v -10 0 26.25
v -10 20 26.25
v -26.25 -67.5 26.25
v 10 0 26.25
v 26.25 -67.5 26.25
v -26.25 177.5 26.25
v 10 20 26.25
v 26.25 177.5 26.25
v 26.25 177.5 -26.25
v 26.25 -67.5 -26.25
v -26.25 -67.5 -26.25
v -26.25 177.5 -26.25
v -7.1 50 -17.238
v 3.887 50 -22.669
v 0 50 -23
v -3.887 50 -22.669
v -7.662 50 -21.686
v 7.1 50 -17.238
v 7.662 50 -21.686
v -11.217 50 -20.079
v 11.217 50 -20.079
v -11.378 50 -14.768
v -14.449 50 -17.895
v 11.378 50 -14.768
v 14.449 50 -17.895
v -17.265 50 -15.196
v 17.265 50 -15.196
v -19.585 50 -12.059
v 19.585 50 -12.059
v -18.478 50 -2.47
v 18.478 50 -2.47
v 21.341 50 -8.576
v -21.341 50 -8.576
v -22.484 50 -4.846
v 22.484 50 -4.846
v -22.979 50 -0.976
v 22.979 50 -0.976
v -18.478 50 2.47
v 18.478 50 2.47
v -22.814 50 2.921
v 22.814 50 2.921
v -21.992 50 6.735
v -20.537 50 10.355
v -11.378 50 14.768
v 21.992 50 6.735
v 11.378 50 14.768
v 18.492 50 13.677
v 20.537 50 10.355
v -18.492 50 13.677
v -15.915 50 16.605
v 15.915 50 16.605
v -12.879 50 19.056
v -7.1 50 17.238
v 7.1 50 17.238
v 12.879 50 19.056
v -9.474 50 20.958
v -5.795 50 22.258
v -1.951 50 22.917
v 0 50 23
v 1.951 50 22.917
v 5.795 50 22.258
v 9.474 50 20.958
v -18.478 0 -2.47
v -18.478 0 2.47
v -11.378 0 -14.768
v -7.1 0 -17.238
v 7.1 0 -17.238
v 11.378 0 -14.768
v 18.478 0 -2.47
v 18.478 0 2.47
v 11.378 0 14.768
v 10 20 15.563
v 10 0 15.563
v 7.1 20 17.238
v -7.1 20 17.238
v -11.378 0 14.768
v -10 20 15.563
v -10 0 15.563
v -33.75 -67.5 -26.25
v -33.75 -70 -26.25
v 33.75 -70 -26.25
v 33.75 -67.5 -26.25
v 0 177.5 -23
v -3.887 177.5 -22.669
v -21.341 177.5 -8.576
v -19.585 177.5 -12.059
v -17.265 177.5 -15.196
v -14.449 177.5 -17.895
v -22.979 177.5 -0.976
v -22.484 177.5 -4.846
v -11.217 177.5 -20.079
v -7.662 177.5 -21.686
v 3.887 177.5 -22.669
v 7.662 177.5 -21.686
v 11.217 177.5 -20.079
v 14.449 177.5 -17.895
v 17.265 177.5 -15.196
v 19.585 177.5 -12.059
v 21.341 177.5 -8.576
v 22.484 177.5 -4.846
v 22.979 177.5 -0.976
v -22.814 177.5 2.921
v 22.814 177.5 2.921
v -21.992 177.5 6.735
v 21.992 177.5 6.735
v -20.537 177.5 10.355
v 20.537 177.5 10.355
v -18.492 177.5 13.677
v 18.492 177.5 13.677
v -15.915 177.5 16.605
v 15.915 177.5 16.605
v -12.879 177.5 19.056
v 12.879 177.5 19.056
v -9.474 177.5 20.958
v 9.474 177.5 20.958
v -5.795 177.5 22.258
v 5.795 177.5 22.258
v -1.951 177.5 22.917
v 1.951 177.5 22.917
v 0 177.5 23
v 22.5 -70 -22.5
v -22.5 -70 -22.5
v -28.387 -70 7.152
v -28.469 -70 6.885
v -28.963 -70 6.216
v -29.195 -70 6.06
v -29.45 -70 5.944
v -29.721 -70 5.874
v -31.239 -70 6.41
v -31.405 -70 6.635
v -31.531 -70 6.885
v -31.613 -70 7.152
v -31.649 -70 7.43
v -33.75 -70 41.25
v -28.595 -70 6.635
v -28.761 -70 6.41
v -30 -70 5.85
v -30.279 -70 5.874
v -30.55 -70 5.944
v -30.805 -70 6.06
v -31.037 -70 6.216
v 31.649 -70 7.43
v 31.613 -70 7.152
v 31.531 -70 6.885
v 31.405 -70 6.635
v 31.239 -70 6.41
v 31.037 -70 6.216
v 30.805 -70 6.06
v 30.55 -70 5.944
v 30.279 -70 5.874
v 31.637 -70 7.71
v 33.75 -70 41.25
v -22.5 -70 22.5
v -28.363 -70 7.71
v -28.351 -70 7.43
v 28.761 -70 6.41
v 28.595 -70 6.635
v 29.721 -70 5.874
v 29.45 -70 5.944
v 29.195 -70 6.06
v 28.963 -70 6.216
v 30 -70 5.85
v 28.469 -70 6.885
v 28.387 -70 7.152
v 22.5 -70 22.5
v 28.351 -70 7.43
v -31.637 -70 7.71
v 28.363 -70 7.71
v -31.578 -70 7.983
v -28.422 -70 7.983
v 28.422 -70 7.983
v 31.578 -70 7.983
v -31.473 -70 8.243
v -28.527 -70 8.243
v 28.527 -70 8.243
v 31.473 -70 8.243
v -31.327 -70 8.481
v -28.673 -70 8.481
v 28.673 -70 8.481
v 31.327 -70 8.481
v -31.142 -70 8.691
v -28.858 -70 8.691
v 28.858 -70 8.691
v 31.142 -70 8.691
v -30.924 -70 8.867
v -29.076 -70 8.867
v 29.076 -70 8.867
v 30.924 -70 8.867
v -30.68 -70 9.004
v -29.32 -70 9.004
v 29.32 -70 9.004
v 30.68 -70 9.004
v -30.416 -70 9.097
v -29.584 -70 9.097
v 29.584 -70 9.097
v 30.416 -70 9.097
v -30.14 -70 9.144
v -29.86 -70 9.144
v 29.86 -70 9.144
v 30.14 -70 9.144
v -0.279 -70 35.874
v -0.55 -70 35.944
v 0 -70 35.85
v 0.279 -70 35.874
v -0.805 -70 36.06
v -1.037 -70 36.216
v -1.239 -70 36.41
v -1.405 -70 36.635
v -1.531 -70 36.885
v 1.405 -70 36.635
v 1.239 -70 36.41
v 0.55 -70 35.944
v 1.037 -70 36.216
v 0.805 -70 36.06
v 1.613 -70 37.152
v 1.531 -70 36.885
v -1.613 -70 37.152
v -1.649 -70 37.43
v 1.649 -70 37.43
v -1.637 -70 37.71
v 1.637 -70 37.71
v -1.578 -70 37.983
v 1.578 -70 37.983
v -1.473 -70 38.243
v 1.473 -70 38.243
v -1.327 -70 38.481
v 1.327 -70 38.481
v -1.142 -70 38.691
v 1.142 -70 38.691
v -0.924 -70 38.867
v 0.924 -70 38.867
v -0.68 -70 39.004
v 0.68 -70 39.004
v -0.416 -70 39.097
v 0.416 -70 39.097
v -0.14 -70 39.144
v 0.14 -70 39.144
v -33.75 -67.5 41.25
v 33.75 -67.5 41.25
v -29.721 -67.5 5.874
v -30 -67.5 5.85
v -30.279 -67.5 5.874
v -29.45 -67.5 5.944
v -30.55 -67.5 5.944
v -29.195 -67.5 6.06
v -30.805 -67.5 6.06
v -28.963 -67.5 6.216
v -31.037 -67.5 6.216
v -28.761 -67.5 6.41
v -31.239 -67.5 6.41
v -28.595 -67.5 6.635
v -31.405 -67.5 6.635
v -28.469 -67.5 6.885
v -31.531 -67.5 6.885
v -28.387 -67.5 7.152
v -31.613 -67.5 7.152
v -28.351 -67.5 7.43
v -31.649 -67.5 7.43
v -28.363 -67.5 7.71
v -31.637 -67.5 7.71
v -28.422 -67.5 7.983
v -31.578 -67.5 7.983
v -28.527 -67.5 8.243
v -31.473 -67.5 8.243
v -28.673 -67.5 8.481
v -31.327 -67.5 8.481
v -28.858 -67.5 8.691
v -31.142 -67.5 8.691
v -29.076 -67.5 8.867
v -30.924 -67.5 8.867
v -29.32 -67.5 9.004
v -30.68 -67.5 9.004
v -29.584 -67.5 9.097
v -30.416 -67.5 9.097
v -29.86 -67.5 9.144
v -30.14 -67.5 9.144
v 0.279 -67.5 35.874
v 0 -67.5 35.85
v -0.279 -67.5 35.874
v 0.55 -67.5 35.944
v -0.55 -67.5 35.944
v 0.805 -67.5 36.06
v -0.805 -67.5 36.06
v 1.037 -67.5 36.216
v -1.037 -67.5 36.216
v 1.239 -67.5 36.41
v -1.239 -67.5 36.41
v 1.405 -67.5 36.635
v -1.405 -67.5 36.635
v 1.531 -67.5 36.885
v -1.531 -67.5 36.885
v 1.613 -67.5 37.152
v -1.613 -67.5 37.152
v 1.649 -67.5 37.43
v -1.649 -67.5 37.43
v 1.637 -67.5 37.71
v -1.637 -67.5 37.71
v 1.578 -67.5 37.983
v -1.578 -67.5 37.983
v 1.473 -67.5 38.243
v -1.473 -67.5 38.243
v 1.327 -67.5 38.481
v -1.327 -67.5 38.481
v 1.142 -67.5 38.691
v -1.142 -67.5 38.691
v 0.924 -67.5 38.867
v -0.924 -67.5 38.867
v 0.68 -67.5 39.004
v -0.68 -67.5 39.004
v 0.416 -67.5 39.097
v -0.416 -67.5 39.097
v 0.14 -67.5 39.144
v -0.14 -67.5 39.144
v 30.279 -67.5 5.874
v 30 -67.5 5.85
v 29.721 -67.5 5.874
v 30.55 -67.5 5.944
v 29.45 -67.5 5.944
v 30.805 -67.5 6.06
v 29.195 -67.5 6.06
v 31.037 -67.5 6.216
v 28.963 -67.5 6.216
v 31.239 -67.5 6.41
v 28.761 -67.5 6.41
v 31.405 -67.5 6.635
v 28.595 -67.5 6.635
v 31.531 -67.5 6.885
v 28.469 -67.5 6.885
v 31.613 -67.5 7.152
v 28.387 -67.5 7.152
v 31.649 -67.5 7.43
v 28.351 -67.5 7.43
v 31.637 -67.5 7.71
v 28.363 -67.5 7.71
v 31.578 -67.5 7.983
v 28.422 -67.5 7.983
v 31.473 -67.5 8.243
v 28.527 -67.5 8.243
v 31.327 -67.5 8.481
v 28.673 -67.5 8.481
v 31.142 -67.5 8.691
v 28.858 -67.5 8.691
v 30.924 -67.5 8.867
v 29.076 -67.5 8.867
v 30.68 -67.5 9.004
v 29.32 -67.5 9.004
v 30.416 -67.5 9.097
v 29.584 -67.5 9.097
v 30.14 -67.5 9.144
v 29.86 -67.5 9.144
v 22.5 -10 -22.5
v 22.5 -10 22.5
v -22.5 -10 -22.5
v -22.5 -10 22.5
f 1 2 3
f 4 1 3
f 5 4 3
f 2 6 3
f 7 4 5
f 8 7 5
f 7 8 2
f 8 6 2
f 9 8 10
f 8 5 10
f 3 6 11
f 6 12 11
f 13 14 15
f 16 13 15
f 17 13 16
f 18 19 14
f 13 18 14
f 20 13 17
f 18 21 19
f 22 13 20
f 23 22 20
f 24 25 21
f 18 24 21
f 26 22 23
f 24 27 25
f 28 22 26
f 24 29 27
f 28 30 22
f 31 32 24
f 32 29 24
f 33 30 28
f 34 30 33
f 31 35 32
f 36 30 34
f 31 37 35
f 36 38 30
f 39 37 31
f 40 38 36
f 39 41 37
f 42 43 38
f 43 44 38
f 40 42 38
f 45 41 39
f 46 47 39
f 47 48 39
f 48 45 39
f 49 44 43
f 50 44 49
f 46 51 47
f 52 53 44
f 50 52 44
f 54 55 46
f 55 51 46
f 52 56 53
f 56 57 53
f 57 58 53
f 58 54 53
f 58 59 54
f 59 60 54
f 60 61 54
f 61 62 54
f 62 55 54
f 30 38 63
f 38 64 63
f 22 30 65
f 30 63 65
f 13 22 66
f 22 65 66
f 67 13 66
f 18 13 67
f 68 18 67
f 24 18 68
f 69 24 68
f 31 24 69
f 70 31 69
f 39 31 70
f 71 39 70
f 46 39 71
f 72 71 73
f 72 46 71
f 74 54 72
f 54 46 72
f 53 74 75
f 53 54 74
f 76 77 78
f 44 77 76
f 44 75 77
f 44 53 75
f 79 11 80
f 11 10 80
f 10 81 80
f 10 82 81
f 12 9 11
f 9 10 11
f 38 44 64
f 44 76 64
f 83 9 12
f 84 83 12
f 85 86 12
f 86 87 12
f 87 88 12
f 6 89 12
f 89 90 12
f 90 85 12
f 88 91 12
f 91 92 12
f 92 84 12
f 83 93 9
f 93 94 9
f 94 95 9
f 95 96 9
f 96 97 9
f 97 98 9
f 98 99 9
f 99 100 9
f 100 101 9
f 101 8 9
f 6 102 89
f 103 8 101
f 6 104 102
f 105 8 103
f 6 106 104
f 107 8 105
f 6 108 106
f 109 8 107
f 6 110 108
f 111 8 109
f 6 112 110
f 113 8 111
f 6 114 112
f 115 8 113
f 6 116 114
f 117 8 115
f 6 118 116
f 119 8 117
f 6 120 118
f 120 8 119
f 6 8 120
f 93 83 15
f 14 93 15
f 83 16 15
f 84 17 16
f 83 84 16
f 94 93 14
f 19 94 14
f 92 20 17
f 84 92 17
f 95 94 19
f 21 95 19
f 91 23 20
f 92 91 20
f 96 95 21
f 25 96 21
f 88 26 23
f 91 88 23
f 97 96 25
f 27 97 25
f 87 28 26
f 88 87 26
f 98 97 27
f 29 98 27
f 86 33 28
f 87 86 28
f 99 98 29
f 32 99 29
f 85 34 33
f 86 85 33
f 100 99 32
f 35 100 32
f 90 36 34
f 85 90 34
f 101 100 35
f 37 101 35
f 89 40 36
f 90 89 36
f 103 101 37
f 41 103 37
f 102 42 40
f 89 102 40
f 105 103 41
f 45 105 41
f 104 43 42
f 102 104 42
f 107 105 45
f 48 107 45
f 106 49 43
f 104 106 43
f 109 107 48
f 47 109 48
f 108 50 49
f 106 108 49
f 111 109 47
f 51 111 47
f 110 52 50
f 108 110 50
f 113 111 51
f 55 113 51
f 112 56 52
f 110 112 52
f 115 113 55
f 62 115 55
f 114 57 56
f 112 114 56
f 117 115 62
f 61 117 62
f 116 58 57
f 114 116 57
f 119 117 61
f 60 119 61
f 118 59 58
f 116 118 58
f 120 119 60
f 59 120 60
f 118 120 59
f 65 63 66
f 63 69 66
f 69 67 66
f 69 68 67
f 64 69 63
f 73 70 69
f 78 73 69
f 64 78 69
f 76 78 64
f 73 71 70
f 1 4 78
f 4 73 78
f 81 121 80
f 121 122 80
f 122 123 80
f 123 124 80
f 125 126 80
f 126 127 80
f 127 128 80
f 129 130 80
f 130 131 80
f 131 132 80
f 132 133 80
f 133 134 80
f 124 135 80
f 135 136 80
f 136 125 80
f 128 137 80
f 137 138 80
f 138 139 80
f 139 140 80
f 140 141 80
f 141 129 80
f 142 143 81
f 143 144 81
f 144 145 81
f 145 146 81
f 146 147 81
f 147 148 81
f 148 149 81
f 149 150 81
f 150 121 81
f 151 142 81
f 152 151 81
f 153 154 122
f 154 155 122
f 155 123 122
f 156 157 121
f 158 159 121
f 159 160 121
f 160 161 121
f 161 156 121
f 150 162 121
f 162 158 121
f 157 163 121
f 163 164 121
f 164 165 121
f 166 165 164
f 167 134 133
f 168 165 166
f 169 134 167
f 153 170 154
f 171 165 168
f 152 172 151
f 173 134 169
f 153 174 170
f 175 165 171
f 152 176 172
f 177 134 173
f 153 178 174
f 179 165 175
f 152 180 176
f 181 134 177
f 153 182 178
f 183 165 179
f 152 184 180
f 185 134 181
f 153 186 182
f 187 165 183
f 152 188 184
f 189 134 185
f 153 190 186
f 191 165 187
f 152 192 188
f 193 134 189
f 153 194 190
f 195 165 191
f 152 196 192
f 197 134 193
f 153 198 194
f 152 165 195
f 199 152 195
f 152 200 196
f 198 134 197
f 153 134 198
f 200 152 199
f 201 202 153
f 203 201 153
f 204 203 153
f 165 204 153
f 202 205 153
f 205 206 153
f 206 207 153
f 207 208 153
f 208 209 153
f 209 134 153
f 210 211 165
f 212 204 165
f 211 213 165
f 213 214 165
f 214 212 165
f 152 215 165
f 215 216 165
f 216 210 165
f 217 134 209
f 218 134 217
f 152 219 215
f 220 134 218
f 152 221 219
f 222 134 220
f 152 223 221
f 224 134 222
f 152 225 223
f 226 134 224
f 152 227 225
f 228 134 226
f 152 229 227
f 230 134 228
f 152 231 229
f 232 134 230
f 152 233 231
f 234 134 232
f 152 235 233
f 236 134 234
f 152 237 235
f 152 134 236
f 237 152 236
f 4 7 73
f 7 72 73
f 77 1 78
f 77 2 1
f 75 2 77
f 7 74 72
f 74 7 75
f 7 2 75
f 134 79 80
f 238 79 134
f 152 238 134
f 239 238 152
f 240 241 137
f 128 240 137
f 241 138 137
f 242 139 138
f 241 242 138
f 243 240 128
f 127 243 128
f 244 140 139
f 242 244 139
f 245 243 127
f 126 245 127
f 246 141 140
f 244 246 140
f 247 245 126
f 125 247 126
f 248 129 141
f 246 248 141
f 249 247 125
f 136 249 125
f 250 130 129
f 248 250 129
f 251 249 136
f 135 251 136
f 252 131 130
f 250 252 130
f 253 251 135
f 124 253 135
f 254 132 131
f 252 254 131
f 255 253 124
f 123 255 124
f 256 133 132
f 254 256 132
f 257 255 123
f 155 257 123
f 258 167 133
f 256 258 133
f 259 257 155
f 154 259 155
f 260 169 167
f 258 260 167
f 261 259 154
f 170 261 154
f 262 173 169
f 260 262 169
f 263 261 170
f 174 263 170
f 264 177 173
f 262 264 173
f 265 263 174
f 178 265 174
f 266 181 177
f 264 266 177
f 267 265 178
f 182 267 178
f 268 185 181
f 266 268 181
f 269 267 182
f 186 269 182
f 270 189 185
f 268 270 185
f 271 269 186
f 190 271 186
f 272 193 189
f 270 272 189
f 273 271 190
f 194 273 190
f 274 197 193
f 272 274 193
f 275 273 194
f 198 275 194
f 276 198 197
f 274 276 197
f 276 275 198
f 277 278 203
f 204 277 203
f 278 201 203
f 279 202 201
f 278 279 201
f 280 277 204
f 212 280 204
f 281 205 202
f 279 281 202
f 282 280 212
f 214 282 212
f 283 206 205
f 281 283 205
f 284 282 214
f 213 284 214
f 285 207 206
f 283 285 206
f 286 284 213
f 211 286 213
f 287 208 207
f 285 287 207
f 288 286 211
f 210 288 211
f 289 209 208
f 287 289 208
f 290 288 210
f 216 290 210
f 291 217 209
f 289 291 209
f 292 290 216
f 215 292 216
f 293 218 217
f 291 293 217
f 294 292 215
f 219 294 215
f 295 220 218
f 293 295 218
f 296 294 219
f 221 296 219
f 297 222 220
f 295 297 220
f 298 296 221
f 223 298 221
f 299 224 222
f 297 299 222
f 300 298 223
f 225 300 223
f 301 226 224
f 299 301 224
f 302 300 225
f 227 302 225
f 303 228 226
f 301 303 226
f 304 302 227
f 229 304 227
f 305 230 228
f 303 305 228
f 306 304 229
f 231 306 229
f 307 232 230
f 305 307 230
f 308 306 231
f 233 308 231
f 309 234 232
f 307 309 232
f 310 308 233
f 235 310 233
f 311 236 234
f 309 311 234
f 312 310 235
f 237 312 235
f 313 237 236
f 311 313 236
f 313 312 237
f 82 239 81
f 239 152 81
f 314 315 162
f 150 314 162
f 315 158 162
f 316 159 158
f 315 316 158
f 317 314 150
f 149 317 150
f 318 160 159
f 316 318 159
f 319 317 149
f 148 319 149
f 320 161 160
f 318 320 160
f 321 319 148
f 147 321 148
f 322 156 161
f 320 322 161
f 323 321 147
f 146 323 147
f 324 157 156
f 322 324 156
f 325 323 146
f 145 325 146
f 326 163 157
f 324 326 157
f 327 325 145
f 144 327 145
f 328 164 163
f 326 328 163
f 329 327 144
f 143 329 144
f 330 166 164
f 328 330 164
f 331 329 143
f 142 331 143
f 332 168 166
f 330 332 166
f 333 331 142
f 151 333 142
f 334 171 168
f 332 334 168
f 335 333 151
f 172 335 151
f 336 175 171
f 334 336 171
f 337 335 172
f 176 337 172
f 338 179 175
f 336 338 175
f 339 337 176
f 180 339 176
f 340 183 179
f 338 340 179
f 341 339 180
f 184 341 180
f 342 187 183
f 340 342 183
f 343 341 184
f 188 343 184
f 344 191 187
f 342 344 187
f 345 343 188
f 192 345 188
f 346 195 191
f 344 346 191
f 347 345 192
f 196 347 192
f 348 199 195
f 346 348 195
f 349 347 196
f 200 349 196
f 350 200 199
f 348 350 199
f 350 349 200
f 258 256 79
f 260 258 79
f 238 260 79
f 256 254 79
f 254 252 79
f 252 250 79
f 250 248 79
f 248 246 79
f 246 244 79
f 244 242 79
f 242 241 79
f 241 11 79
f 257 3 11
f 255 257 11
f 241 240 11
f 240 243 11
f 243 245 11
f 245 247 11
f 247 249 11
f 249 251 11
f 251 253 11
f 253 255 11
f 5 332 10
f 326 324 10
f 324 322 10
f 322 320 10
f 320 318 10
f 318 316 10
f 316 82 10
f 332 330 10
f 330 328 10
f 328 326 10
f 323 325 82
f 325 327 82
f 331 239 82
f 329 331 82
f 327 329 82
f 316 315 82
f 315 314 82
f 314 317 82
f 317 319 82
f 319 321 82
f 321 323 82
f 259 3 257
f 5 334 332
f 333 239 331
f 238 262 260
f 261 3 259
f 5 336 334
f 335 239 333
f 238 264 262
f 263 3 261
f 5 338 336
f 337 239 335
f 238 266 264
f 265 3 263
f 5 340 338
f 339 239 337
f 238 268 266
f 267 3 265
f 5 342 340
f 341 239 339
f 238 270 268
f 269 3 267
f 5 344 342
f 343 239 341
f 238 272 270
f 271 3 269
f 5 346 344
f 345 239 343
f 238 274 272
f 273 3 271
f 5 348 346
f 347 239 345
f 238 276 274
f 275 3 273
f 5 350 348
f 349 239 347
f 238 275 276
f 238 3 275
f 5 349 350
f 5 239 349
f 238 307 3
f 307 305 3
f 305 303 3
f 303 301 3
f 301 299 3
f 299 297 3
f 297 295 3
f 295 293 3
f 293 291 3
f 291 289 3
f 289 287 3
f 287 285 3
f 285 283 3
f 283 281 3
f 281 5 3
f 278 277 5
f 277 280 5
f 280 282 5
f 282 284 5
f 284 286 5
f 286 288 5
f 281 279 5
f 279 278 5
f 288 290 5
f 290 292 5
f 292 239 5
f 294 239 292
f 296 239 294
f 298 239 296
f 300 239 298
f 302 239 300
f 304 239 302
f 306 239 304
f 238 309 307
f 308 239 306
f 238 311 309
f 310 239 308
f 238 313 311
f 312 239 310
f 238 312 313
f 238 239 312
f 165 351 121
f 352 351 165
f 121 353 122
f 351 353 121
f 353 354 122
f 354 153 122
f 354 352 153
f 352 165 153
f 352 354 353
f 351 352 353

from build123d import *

# Parameters (mm, degrees)
BOSS_EXTRUDE1_DEPTH = 50
BOSS_EXTRUDE2_START = 50
SKETCH2_3_R         = 23
BOSS_EXTRUDE2_DEPTH = 127.5
BOSS_EXTRUDE3_DEPTH = 177.5
SKETCH3_W           = 52.5
SKETCH3_H           = 52.5
BOSS_EXTRUDE4_DEPTH = 70
SKETCH6_W           = 20
SKETCH6_H           = 20
CUT_EXTRUDE7_DEPTH  = 30
SKETCH5_W           = 67.5
SKETCH5_H           = 67.5
SKETCH5_R           = 1.65
SKETCH5_W_2         = 47.5
SKETCH5_H_2         = 47.5
BOSS_EXTRUDE7_DEPTH = 2.5
SKETCH8_W           = 45
SKETCH8_H           = 45
CUT_EXTRUDE9_DEPTH  = 60


with BuildPart() as part:
    # Sketch2 → Boss-Extrude1 (new body)
    with BuildSketch(Plane(origin=(0, 0, 0), x_dir=(1, 0, 0), z_dir=(0, 1, 0))):
        with BuildLine():
            ThreePointArc((-26.25, -11.459990061), (-20.253319138, -20.253319138), (-11.459990061, -26.25))
            Line((-11.459990061, -26.25), (11.459990061, -26.25))
            ThreePointArc((11.459990061, -26.25), (20.253319138, -20.253319138), (26.25, -11.459990061))
            Line((26.25, -11.459990061), (26.25, 11.459990061))
            ThreePointArc((26.25, 11.459990061), (20.253319138, 20.253319138), (11.459990061, 26.25))
            Line((11.459990061, 26.25), (-11.459990061, 26.25))
            ThreePointArc((-11.459990061, 26.25), (-20.253319138, 20.253319138), (-26.25, 11.459990061))
            Line((-26.25, 11.459990061), (-26.25, -11.459990061))
        make_face()
        Polygon((-7.1, 17.237560734), (7.1, 17.237560734), (11.378165495, 14.767560734), (18.478165495, 2.47), (18.478165495, -2.47), (11.378165495, -14.767560734), (7.1, -17.237560734), (-7.1, -17.237560734), (-11.378165495, -14.767560734), (-18.478165495, -2.47), (-18.478165495, 2.47), (-11.378165495, 14.767560734), align=None, mode=Mode.SUBTRACT)
    extrude(amount=BOSS_EXTRUDE1_DEPTH)

    # Sketch2<3> → Boss-Extrude2 (add)
    with BuildSketch(Plane(origin=(0, 0, 0), x_dir=(1, 0, 0), z_dir=(0, 1, 0)).offset(BOSS_EXTRUDE2_START)):
        with BuildLine():
            ThreePointArc((-26.25, -11.459990061), (-20.253319138, -20.253319138), (-11.459990061, -26.25))
            Line((-11.459990061, -26.25), (11.459990061, -26.25))
            ThreePointArc((11.459990061, -26.25), (20.253319138, -20.253319138), (26.25, -11.459990061))
            Line((26.25, -11.459990061), (26.25, 11.459990061))
            ThreePointArc((26.25, 11.459990061), (20.253319138, 20.253319138), (11.459990061, 26.25))
            Line((11.459990061, 26.25), (-11.459990061, 26.25))
            ThreePointArc((-11.459990061, 26.25), (-20.253319138, 20.253319138), (-26.25, 11.459990061))
            Line((-26.25, 11.459990061), (-26.25, -11.459990061))
        make_face()
        with Locations(Location((0, 0, 0), (0, 0, 270))):
            Circle(SKETCH2_3_R, mode=Mode.SUBTRACT)
    extrude(amount=BOSS_EXTRUDE2_DEPTH)

    # Sketch2<4> → Boss-Extrude3 (add)
    with BuildSketch(Plane(origin=(0, 0, 0), x_dir=(1, 0, 0), z_dir=(0, 1, 0))):
        with BuildLine():
            Line((-26.25, 26.25), (-26.25, 11.459990061))
            ThreePointArc((-26.25, 11.459990061), (-20.253319138, 20.253319138), (-11.459990061, 26.25))
            Line((-11.459990061, 26.25), (-26.25, 26.25))
        make_face()
        with BuildLine():
            ThreePointArc((11.459990061, 26.25), (20.253319138, 20.253319138), (26.25, 11.459990061))
            Line((26.25, 11.459990061), (26.25, 26.25))
            Line((26.25, 26.25), (11.459990061, 26.25))
        make_face()
        with BuildLine():
            ThreePointArc((26.25, -11.459990061), (20.253319138, -20.253319138), (11.459990061, -26.25))
            Line((11.459990061, -26.25), (26.25, -26.25))
            Line((26.25, -26.25), (26.25, -11.459990061))
        make_face()
        with BuildLine():
            Line((-26.25, -11.459990061), (-26.25, -26.25))
            Line((-26.25, -26.25), (-11.459990061, -26.25))
            ThreePointArc((-11.459990061, -26.25), (-20.253319138, -20.253319138), (-26.25, -11.459990061))
        make_face()
    extrude(amount=BOSS_EXTRUDE3_DEPTH)

    # Sketch3 → Boss-Extrude4 (add)
    with BuildSketch(Plane.XZ):
        Rectangle(SKETCH3_W, SKETCH3_H)
    extrude(amount=BOSS_EXTRUDE4_DEPTH)

    # Sketch6 → Cut-Extrude7 (cut)
    with BuildSketch(Plane.XY.offset(26.25)):
        with Locations((0, 10)):
            Rectangle(SKETCH6_W, SKETCH6_H)
    extrude(amount=-CUT_EXTRUDE7_DEPTH, mode=Mode.SUBTRACT)

    # Sketch5 → Boss-Extrude7 (add)
    with BuildSketch(Plane.XZ.offset(70)):
        with Locations((0, 7.5)):
            Rectangle(SKETCH5_W, SKETCH5_H)
        with Locations(Location((0, 37.5, 0), (0, 0, 270))):
            Circle(SKETCH5_R, mode=Mode.SUBTRACT)
        with Locations(Location((-30, 7.5, 0), (0, 0, 270))):
            Circle(SKETCH5_R, mode=Mode.SUBTRACT)
        with Locations(Location((30, 7.5, 0), (0, 0, 270))):
            Circle(SKETCH5_R, mode=Mode.SUBTRACT)
        Rectangle(SKETCH5_W_2, SKETCH5_H_2, mode=Mode.SUBTRACT)
    extrude(amount=-BOSS_EXTRUDE7_DEPTH)

    # Sketch8 → Cut-Extrude9 (cut)
    with BuildSketch(Plane.XZ.offset(70)):
        Rectangle(SKETCH8_W, SKETCH8_H)
    extrude(amount=-CUT_EXTRUDE9_DEPTH, mode=Mode.SUBTRACT)


solid = part.part
